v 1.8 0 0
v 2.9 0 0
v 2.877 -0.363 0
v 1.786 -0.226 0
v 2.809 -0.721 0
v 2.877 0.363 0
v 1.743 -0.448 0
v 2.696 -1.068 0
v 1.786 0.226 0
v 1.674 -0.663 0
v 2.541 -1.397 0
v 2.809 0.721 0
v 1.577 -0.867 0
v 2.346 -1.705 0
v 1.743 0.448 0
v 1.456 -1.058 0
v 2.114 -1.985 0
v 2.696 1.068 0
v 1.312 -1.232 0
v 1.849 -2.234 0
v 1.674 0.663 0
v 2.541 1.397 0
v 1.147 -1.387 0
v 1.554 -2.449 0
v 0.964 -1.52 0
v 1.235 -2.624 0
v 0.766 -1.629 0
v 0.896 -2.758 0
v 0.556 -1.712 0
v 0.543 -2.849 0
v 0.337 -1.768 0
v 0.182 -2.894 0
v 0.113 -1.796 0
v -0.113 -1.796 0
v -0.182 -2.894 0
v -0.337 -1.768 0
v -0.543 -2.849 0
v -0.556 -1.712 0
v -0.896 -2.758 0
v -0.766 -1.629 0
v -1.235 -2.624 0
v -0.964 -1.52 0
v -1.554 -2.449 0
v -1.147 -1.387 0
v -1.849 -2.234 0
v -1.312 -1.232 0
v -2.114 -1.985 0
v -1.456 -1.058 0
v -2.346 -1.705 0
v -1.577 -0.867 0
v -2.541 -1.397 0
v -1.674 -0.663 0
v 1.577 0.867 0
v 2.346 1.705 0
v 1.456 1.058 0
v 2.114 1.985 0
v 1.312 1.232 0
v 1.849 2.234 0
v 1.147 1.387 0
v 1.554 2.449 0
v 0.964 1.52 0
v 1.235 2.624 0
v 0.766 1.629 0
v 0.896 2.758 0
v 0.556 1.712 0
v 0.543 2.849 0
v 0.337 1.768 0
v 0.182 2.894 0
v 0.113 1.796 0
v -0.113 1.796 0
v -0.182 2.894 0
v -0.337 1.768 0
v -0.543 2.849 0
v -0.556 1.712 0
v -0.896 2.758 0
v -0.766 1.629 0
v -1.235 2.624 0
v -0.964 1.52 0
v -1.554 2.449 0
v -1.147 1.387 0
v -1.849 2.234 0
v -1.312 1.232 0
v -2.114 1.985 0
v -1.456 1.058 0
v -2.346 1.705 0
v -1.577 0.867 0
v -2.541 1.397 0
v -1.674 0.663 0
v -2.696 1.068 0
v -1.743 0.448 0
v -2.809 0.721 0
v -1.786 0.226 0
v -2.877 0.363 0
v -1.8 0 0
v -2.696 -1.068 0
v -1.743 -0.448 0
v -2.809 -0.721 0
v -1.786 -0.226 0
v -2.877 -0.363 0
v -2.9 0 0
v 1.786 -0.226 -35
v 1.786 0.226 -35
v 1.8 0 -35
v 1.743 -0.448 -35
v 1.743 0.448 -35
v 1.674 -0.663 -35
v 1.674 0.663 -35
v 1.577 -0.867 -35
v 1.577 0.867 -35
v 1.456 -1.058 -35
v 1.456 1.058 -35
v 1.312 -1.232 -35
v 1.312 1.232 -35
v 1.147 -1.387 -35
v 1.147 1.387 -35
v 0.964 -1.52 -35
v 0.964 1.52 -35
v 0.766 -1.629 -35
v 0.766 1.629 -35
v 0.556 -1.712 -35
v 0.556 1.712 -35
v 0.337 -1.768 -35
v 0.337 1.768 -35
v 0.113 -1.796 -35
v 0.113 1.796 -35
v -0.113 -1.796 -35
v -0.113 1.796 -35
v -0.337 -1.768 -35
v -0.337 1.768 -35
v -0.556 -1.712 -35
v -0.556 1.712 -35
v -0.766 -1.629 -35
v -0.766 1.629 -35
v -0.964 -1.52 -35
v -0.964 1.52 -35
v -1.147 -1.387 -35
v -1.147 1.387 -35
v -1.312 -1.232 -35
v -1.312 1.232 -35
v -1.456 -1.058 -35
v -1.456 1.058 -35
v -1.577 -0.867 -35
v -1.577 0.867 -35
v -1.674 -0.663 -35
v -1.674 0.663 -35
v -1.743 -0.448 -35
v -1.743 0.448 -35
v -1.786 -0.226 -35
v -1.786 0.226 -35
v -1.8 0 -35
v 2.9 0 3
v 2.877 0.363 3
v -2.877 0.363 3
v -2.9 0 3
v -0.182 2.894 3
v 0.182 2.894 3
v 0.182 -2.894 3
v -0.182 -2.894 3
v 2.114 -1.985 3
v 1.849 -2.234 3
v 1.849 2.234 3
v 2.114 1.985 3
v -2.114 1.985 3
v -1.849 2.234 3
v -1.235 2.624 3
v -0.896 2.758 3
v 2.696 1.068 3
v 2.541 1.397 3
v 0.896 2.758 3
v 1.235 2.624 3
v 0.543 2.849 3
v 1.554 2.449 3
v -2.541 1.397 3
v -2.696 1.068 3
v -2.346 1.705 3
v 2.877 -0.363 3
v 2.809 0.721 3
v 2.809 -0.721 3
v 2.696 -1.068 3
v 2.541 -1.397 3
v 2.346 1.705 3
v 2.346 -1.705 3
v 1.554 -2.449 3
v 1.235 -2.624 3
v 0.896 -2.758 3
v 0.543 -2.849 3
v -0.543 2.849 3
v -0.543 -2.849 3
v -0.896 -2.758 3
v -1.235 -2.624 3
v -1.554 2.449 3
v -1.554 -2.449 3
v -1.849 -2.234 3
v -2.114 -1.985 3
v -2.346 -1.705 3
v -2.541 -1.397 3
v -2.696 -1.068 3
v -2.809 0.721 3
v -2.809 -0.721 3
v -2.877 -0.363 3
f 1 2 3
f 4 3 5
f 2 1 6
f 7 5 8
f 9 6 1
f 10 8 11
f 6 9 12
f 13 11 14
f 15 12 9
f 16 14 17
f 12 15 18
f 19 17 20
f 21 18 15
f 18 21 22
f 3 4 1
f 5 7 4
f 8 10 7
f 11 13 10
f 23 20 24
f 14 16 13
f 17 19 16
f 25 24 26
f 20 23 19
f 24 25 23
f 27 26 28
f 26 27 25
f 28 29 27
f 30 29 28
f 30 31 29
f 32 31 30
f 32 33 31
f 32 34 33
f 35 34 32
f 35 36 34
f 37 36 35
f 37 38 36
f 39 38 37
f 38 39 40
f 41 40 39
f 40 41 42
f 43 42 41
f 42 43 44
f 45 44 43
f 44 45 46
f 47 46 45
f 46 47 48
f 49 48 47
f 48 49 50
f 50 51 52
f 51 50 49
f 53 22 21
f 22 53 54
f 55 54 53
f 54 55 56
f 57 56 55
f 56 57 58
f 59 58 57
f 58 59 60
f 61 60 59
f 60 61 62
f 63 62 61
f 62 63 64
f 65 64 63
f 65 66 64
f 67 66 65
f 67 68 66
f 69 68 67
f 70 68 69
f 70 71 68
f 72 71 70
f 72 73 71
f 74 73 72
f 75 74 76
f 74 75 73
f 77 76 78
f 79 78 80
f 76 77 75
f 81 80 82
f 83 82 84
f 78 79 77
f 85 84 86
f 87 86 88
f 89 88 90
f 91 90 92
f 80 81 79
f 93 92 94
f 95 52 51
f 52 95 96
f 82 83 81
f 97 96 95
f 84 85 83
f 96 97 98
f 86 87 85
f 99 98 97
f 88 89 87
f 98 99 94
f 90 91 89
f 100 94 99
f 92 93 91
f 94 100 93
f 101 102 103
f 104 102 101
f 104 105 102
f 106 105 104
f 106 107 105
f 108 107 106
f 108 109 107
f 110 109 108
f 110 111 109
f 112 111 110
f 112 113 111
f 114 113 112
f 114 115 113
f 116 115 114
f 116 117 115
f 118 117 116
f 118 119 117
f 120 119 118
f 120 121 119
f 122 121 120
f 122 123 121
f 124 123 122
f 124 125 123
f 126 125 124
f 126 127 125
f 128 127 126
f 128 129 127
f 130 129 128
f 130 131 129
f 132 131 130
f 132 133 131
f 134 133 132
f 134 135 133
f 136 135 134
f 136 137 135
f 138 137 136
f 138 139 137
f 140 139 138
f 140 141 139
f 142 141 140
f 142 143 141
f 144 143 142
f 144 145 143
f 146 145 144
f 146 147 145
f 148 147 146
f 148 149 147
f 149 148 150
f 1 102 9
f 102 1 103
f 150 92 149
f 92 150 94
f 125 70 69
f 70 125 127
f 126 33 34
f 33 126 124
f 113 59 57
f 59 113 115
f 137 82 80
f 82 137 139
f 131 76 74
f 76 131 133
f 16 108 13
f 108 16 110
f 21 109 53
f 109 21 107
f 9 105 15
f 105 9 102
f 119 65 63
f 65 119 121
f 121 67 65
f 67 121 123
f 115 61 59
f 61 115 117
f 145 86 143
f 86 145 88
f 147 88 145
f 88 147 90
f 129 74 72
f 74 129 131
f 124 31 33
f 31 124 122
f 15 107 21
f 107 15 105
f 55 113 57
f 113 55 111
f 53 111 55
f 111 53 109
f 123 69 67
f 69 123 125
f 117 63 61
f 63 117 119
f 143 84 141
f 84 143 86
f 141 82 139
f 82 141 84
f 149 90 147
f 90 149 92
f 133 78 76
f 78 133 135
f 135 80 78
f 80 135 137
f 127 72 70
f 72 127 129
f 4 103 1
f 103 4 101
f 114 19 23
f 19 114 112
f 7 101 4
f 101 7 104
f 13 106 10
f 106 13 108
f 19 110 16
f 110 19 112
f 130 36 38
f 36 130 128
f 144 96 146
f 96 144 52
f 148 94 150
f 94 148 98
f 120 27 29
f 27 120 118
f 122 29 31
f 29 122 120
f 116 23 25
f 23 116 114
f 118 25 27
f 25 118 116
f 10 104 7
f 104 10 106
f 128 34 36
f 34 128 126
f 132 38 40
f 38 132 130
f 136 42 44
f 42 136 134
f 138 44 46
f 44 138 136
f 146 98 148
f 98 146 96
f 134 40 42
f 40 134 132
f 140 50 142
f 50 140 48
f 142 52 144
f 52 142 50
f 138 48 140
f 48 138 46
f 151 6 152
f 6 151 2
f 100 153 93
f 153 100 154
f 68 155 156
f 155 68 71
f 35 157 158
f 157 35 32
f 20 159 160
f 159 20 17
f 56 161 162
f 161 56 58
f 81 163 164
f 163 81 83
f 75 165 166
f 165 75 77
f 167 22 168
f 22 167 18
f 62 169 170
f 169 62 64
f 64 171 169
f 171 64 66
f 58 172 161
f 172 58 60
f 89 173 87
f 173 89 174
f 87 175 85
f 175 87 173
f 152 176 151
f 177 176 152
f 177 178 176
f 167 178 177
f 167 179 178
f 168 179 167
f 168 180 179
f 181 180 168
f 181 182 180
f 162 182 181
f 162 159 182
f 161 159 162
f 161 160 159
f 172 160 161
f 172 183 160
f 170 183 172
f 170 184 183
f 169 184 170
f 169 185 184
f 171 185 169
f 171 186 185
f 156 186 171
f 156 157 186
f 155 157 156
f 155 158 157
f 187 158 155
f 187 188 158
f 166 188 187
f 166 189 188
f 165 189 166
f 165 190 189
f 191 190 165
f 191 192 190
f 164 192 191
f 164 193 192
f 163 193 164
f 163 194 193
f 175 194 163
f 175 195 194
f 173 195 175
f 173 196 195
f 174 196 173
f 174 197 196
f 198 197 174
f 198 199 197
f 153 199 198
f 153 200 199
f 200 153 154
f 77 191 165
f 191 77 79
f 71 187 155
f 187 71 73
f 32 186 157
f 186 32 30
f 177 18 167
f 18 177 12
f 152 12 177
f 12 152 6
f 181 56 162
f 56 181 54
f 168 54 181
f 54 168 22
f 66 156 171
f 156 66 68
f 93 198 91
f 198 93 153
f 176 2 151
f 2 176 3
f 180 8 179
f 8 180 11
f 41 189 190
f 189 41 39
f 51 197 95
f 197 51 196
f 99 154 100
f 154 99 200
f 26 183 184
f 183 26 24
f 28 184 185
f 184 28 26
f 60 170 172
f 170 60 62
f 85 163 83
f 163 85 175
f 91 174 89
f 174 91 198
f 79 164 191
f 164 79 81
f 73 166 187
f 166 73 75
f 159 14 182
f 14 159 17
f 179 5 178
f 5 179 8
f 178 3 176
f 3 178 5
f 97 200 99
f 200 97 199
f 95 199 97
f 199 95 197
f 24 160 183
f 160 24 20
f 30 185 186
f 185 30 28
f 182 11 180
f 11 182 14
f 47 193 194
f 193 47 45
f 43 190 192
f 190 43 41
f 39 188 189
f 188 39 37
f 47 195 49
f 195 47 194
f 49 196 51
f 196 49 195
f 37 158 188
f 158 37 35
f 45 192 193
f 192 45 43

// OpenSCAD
$fn = 50;


difference() {
	union() {
		translate(v = [0, 0, 0]) {
			rotate(a = [0, 0, 0]) {
				difference() {
					union() {
						translate(v = [0, 0, -35.0000000000]) {
							cylinder(h = 35, r = 1.5000000000);
						}
						translate(v = [0, 0, -35.0000000000]) {
							cylinder(h = 35, r = 1.8000000000);
						}
						cylinder(h = 3, r = 2.9000000000);
						translate(v = [0, 0, -35.0000000000]) {
							cylinder(h = 35, r = 1.5000000000);
						}
					}
					union();
				}
			}
		}
	}
	union();
}
